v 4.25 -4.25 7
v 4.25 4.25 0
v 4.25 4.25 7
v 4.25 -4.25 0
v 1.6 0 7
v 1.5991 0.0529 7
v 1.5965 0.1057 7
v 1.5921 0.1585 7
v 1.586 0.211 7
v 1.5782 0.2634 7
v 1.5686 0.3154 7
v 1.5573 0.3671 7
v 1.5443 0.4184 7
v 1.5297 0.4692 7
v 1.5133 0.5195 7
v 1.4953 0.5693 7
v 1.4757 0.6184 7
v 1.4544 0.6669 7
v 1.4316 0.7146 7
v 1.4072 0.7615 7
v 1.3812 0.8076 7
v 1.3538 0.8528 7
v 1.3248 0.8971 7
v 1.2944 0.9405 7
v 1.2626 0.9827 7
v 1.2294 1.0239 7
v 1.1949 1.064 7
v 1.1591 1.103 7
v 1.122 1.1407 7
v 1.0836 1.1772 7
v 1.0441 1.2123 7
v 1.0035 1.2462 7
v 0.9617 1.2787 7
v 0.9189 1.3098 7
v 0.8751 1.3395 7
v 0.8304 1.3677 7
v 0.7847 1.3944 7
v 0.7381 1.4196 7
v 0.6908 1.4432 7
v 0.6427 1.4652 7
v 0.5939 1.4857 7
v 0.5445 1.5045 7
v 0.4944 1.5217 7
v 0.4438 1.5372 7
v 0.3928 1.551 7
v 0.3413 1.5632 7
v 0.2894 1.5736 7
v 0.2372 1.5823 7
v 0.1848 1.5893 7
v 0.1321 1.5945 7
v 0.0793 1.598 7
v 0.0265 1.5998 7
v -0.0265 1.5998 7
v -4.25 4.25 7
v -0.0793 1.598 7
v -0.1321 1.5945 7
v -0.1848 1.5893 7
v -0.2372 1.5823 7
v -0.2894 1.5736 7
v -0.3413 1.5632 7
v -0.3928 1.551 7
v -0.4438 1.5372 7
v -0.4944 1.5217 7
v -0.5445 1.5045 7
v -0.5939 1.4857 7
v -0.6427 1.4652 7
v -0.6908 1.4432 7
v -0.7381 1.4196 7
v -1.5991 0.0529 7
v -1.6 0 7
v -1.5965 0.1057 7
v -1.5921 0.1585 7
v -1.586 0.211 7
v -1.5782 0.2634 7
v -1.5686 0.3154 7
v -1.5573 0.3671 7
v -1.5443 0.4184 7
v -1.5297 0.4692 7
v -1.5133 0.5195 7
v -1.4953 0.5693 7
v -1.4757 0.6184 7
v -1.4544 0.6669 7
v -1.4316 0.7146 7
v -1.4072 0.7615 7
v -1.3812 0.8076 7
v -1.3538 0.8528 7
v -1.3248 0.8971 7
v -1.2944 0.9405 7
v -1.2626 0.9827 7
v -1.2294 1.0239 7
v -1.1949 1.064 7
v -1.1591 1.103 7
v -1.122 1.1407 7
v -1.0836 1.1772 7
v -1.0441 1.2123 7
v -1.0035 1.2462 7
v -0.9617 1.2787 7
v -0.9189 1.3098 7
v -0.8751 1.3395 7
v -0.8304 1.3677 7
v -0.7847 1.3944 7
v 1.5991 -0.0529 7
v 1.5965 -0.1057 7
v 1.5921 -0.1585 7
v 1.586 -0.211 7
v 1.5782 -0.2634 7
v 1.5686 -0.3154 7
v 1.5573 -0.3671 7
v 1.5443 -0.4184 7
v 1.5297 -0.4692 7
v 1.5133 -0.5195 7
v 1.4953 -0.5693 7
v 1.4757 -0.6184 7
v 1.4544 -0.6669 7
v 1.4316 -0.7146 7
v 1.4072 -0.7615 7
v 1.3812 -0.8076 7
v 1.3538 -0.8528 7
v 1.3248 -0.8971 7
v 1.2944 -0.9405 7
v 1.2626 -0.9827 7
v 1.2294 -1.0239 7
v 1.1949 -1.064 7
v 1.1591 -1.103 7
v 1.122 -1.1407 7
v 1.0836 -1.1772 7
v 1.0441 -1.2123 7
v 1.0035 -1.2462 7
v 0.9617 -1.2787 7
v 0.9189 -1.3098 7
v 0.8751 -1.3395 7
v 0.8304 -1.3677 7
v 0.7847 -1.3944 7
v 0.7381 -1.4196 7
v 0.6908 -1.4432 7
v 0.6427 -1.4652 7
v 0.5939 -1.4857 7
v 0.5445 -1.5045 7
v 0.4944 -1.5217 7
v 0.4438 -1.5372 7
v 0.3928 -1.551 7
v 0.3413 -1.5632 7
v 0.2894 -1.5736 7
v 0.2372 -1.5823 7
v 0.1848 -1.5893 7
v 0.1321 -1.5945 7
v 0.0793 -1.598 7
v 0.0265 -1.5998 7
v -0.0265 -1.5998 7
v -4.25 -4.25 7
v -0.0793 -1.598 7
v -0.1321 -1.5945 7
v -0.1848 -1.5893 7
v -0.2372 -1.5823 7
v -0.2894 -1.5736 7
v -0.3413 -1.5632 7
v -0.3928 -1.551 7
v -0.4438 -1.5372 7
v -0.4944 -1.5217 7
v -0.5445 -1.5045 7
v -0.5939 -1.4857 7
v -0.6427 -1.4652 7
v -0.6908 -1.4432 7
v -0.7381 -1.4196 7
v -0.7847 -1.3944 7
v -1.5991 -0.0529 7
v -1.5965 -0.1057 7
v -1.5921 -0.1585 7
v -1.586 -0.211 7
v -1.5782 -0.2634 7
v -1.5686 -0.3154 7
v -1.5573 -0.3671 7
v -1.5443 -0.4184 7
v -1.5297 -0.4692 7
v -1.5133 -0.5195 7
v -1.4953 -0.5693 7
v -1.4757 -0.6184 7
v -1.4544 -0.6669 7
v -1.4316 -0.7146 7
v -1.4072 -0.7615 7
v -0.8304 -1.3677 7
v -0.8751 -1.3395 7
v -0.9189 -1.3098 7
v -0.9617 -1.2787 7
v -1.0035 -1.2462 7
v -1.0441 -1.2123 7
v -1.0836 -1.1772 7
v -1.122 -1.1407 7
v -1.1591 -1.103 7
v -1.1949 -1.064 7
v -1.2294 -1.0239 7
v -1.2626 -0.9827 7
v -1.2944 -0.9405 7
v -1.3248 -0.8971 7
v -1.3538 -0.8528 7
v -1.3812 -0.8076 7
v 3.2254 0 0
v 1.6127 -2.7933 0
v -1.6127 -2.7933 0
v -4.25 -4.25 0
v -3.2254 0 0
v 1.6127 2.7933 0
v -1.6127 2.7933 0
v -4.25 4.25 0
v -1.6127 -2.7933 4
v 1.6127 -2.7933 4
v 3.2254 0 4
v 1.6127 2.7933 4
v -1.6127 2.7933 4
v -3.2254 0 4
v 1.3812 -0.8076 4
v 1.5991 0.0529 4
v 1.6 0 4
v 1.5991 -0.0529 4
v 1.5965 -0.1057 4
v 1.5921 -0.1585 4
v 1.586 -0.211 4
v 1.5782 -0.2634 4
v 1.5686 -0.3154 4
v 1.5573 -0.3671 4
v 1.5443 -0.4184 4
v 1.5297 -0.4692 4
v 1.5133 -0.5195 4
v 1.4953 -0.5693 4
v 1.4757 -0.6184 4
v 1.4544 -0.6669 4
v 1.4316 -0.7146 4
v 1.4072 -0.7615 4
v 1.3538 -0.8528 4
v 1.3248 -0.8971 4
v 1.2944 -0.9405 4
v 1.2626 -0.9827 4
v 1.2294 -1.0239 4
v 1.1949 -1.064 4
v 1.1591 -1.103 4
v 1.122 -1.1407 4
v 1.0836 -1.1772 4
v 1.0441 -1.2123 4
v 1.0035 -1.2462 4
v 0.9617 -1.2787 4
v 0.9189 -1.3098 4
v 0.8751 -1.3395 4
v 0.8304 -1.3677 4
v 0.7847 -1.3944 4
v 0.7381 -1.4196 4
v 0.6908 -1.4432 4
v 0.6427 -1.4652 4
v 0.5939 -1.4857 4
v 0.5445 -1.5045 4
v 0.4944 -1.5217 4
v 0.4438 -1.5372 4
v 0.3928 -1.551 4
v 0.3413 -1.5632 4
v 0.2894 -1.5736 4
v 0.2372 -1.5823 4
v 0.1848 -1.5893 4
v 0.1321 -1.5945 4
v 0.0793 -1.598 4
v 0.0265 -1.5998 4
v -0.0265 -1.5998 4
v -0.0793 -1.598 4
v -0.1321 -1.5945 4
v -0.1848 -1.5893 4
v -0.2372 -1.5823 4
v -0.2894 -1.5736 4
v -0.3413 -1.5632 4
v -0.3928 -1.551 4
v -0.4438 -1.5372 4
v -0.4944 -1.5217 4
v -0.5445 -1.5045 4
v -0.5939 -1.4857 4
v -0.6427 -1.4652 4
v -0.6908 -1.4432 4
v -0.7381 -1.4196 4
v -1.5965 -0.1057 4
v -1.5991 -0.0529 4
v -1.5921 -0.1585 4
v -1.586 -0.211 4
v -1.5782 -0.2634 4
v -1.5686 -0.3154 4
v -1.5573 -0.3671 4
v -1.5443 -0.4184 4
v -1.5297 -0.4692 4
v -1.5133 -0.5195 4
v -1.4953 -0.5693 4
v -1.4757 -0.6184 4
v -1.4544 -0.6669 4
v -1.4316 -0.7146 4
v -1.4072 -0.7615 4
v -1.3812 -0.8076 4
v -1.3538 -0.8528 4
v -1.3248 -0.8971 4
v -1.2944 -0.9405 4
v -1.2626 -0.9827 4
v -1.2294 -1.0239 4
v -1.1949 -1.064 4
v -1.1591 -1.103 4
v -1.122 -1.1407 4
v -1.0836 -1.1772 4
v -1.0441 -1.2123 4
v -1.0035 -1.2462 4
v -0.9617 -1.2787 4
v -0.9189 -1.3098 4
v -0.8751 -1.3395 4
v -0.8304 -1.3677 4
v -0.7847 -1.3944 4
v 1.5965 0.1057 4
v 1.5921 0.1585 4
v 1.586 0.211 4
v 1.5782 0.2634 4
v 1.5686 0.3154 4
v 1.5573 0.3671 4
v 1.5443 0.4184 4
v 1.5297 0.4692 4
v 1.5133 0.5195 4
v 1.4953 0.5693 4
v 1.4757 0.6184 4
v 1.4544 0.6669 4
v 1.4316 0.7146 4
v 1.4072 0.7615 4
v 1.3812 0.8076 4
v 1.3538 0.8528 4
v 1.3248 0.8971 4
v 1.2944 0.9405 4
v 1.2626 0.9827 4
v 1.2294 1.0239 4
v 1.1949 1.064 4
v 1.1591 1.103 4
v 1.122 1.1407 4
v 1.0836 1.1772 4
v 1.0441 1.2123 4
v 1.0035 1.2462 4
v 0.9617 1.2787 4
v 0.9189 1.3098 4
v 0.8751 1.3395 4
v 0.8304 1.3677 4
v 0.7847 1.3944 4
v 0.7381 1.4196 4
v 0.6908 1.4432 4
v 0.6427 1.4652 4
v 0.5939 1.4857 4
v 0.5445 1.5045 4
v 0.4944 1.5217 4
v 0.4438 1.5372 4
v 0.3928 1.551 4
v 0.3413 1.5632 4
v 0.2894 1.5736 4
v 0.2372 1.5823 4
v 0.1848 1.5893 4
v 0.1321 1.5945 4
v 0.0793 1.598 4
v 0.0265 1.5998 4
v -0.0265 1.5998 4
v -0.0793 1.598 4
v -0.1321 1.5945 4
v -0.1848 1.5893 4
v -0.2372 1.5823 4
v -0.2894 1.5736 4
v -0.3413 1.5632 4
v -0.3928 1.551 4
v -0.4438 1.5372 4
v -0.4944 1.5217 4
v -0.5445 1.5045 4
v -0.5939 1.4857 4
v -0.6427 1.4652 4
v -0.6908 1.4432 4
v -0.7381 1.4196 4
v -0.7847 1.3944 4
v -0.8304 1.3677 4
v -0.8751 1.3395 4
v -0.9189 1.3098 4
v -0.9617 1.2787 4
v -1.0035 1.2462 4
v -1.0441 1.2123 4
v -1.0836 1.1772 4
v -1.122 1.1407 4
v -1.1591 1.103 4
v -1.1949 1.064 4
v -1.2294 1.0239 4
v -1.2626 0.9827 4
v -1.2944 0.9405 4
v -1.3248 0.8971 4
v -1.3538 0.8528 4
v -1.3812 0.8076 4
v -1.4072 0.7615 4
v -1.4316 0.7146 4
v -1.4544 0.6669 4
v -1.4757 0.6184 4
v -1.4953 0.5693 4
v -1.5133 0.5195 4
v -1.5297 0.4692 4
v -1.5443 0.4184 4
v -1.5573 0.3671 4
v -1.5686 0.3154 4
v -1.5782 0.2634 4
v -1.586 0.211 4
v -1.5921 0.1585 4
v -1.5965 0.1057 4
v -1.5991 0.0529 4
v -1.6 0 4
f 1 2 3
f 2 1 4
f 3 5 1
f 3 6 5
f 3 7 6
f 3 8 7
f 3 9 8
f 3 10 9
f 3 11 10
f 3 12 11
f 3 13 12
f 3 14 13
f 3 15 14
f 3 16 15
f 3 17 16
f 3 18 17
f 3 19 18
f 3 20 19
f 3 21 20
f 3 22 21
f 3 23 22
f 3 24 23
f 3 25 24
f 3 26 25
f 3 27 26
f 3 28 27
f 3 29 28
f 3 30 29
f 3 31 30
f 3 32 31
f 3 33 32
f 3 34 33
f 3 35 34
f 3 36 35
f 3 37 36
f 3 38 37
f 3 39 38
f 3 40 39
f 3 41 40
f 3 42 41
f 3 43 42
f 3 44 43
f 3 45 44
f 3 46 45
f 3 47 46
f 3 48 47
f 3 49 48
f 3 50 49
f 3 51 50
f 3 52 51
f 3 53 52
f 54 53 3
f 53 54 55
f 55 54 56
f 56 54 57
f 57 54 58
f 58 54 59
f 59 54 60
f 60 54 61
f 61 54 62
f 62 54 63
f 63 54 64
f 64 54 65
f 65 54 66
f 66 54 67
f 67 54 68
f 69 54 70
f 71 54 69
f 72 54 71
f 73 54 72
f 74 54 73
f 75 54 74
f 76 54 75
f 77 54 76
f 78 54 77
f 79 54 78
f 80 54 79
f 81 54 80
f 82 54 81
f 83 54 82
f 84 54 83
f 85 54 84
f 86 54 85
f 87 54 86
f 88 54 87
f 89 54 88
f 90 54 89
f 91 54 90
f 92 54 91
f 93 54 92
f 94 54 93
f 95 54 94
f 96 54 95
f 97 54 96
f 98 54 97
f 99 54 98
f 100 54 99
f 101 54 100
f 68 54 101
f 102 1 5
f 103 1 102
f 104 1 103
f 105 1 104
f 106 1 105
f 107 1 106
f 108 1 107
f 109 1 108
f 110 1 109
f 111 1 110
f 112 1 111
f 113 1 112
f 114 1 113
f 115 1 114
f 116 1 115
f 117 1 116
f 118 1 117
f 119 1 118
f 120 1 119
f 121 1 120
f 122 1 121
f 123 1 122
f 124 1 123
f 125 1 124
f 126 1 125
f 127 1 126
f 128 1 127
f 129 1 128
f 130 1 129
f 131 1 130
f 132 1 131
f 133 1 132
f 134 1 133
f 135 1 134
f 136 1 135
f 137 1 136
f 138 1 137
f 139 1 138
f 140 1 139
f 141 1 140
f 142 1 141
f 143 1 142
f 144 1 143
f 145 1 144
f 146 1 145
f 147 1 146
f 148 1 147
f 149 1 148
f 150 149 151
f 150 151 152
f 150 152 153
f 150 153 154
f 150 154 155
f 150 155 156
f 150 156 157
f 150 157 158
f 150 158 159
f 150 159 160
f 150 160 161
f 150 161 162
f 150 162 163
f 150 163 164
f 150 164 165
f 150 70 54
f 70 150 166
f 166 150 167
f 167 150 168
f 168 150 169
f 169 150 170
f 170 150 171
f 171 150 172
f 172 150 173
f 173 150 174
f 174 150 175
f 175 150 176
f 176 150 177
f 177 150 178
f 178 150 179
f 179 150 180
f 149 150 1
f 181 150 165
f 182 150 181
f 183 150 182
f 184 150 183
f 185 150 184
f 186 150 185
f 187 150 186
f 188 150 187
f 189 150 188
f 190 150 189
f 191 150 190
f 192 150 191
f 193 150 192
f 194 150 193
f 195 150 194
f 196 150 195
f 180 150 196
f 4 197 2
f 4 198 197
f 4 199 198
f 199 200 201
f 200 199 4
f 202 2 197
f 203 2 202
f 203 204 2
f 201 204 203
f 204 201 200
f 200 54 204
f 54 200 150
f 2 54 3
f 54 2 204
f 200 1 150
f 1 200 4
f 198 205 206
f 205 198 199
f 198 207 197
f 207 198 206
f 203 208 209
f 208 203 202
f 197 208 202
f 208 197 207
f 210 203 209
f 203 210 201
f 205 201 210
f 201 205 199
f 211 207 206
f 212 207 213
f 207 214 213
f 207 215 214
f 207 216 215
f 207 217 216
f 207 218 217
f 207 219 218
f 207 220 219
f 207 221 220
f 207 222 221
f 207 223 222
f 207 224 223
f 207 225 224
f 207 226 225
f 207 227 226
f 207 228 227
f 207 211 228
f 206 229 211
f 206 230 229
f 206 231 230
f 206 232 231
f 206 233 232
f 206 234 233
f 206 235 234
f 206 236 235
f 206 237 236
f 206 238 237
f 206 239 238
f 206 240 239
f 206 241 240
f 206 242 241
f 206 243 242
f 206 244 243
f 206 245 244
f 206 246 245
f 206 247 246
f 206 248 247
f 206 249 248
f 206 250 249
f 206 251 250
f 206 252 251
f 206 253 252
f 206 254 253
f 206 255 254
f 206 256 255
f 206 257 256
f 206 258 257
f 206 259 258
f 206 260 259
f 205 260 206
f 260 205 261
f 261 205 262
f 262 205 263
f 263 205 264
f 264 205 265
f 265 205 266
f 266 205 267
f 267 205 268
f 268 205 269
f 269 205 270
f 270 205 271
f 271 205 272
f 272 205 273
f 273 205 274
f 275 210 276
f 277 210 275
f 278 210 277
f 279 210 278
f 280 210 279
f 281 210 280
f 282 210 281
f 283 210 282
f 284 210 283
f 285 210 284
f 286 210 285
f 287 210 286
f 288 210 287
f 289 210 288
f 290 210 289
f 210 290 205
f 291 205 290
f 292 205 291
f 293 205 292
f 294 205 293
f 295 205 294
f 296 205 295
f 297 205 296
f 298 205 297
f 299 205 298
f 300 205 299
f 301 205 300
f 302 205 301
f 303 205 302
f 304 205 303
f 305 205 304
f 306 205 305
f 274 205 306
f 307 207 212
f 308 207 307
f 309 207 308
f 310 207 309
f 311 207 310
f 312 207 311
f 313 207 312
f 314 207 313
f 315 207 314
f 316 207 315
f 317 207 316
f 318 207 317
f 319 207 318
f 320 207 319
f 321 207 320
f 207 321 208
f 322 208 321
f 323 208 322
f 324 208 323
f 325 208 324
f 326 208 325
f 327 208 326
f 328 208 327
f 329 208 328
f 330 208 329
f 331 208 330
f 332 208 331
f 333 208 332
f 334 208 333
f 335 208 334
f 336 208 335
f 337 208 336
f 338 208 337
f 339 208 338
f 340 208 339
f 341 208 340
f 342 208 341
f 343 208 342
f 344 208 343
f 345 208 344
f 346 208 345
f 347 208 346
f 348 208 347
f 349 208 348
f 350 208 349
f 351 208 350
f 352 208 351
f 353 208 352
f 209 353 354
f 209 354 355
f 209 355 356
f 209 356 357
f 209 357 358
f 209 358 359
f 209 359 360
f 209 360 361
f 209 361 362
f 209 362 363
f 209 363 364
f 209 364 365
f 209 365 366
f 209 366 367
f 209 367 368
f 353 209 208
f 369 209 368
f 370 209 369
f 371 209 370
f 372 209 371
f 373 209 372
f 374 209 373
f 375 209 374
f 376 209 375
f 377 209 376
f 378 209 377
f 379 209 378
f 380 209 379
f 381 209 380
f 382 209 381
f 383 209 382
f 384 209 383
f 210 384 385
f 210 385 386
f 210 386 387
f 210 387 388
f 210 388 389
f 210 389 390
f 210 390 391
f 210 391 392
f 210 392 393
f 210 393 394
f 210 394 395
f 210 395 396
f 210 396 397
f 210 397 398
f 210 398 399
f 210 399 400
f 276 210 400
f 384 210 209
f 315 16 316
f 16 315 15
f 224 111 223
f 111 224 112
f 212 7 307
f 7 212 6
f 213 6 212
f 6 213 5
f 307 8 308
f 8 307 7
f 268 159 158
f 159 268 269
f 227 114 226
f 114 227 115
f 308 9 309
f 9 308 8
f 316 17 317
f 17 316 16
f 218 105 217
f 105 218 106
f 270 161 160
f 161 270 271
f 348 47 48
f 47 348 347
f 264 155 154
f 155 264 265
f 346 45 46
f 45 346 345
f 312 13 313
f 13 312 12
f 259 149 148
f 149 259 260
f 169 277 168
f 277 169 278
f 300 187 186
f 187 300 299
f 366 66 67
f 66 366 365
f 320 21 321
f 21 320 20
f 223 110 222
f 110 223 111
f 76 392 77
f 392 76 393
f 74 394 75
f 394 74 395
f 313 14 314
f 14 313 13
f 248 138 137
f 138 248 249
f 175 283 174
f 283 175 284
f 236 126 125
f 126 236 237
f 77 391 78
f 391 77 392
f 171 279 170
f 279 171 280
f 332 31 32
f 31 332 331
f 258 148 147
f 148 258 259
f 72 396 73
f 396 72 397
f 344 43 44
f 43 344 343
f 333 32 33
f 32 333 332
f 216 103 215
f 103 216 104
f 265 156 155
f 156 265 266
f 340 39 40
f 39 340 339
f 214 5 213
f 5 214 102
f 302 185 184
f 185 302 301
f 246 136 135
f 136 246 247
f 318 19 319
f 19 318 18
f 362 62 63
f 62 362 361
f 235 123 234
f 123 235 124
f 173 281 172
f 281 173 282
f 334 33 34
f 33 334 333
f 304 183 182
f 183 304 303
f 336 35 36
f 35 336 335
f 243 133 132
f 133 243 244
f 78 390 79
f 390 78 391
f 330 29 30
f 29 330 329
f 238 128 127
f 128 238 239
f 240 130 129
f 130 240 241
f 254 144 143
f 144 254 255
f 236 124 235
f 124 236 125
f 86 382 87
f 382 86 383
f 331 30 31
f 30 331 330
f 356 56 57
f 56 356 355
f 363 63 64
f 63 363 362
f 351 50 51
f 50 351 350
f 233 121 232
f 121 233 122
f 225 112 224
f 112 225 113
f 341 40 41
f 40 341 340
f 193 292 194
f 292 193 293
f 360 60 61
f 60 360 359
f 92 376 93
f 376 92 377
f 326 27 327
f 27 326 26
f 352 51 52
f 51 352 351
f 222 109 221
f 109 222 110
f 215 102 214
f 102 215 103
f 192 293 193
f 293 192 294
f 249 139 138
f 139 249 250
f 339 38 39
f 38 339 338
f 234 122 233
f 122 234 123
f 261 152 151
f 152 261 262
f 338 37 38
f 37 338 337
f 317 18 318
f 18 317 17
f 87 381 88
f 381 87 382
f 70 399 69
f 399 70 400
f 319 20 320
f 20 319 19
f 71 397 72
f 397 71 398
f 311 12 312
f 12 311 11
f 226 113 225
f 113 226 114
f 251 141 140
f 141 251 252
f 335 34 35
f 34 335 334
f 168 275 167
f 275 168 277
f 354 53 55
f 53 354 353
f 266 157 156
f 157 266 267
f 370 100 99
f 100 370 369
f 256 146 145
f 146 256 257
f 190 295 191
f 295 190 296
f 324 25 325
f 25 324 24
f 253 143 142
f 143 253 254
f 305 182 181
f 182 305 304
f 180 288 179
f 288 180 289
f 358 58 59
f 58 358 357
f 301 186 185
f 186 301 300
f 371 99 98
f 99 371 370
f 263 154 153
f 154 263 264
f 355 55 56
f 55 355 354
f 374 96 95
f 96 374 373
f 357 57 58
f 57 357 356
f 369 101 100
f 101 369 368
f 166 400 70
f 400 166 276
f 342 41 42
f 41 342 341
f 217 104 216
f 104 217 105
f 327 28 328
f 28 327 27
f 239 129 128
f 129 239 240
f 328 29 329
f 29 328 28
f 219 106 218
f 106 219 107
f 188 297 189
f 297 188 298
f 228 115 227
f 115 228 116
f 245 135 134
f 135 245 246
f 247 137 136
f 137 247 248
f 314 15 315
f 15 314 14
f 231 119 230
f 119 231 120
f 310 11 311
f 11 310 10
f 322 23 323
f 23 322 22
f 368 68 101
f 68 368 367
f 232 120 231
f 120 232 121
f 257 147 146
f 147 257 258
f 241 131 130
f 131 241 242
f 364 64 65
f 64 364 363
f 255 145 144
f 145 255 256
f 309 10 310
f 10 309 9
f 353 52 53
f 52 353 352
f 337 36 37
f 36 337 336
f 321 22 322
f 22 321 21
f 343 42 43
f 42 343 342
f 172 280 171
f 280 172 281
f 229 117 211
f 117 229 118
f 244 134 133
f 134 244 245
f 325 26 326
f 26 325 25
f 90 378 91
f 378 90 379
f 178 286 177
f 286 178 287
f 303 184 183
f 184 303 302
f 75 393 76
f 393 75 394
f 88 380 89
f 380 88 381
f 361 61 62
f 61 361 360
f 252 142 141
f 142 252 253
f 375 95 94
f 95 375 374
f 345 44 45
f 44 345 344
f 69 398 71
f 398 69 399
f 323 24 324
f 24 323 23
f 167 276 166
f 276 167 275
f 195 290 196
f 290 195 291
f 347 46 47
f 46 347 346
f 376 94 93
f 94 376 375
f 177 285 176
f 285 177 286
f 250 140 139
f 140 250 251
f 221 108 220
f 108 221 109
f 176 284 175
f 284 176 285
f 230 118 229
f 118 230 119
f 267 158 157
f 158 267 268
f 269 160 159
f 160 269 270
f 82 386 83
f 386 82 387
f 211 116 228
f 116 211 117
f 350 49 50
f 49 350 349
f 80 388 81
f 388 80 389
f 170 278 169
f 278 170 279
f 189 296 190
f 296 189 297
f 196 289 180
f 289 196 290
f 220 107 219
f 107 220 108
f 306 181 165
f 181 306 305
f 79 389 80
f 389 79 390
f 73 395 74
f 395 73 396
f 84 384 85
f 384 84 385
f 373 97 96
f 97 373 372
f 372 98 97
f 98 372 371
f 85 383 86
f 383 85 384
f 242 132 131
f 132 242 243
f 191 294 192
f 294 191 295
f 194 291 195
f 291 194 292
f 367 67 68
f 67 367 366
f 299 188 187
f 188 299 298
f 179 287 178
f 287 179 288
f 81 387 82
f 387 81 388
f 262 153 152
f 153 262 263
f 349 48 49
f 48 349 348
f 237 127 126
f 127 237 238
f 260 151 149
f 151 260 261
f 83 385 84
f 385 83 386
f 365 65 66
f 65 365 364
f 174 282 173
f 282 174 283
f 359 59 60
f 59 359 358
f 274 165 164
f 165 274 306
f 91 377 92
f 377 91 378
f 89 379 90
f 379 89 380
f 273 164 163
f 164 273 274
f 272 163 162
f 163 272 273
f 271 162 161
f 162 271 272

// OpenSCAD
difference() {
    translate([-8.5/2, - 8.5/2, 0]) cube([8.5, 8.5, 7]);
    cylinder(r = 5.5 / 2 / cos(180 / 6) + 0.05, h=4, $fn=6);
    translate([0, 0, -5]) cylinder(d=3.2, h=20, $fn=190);
}
